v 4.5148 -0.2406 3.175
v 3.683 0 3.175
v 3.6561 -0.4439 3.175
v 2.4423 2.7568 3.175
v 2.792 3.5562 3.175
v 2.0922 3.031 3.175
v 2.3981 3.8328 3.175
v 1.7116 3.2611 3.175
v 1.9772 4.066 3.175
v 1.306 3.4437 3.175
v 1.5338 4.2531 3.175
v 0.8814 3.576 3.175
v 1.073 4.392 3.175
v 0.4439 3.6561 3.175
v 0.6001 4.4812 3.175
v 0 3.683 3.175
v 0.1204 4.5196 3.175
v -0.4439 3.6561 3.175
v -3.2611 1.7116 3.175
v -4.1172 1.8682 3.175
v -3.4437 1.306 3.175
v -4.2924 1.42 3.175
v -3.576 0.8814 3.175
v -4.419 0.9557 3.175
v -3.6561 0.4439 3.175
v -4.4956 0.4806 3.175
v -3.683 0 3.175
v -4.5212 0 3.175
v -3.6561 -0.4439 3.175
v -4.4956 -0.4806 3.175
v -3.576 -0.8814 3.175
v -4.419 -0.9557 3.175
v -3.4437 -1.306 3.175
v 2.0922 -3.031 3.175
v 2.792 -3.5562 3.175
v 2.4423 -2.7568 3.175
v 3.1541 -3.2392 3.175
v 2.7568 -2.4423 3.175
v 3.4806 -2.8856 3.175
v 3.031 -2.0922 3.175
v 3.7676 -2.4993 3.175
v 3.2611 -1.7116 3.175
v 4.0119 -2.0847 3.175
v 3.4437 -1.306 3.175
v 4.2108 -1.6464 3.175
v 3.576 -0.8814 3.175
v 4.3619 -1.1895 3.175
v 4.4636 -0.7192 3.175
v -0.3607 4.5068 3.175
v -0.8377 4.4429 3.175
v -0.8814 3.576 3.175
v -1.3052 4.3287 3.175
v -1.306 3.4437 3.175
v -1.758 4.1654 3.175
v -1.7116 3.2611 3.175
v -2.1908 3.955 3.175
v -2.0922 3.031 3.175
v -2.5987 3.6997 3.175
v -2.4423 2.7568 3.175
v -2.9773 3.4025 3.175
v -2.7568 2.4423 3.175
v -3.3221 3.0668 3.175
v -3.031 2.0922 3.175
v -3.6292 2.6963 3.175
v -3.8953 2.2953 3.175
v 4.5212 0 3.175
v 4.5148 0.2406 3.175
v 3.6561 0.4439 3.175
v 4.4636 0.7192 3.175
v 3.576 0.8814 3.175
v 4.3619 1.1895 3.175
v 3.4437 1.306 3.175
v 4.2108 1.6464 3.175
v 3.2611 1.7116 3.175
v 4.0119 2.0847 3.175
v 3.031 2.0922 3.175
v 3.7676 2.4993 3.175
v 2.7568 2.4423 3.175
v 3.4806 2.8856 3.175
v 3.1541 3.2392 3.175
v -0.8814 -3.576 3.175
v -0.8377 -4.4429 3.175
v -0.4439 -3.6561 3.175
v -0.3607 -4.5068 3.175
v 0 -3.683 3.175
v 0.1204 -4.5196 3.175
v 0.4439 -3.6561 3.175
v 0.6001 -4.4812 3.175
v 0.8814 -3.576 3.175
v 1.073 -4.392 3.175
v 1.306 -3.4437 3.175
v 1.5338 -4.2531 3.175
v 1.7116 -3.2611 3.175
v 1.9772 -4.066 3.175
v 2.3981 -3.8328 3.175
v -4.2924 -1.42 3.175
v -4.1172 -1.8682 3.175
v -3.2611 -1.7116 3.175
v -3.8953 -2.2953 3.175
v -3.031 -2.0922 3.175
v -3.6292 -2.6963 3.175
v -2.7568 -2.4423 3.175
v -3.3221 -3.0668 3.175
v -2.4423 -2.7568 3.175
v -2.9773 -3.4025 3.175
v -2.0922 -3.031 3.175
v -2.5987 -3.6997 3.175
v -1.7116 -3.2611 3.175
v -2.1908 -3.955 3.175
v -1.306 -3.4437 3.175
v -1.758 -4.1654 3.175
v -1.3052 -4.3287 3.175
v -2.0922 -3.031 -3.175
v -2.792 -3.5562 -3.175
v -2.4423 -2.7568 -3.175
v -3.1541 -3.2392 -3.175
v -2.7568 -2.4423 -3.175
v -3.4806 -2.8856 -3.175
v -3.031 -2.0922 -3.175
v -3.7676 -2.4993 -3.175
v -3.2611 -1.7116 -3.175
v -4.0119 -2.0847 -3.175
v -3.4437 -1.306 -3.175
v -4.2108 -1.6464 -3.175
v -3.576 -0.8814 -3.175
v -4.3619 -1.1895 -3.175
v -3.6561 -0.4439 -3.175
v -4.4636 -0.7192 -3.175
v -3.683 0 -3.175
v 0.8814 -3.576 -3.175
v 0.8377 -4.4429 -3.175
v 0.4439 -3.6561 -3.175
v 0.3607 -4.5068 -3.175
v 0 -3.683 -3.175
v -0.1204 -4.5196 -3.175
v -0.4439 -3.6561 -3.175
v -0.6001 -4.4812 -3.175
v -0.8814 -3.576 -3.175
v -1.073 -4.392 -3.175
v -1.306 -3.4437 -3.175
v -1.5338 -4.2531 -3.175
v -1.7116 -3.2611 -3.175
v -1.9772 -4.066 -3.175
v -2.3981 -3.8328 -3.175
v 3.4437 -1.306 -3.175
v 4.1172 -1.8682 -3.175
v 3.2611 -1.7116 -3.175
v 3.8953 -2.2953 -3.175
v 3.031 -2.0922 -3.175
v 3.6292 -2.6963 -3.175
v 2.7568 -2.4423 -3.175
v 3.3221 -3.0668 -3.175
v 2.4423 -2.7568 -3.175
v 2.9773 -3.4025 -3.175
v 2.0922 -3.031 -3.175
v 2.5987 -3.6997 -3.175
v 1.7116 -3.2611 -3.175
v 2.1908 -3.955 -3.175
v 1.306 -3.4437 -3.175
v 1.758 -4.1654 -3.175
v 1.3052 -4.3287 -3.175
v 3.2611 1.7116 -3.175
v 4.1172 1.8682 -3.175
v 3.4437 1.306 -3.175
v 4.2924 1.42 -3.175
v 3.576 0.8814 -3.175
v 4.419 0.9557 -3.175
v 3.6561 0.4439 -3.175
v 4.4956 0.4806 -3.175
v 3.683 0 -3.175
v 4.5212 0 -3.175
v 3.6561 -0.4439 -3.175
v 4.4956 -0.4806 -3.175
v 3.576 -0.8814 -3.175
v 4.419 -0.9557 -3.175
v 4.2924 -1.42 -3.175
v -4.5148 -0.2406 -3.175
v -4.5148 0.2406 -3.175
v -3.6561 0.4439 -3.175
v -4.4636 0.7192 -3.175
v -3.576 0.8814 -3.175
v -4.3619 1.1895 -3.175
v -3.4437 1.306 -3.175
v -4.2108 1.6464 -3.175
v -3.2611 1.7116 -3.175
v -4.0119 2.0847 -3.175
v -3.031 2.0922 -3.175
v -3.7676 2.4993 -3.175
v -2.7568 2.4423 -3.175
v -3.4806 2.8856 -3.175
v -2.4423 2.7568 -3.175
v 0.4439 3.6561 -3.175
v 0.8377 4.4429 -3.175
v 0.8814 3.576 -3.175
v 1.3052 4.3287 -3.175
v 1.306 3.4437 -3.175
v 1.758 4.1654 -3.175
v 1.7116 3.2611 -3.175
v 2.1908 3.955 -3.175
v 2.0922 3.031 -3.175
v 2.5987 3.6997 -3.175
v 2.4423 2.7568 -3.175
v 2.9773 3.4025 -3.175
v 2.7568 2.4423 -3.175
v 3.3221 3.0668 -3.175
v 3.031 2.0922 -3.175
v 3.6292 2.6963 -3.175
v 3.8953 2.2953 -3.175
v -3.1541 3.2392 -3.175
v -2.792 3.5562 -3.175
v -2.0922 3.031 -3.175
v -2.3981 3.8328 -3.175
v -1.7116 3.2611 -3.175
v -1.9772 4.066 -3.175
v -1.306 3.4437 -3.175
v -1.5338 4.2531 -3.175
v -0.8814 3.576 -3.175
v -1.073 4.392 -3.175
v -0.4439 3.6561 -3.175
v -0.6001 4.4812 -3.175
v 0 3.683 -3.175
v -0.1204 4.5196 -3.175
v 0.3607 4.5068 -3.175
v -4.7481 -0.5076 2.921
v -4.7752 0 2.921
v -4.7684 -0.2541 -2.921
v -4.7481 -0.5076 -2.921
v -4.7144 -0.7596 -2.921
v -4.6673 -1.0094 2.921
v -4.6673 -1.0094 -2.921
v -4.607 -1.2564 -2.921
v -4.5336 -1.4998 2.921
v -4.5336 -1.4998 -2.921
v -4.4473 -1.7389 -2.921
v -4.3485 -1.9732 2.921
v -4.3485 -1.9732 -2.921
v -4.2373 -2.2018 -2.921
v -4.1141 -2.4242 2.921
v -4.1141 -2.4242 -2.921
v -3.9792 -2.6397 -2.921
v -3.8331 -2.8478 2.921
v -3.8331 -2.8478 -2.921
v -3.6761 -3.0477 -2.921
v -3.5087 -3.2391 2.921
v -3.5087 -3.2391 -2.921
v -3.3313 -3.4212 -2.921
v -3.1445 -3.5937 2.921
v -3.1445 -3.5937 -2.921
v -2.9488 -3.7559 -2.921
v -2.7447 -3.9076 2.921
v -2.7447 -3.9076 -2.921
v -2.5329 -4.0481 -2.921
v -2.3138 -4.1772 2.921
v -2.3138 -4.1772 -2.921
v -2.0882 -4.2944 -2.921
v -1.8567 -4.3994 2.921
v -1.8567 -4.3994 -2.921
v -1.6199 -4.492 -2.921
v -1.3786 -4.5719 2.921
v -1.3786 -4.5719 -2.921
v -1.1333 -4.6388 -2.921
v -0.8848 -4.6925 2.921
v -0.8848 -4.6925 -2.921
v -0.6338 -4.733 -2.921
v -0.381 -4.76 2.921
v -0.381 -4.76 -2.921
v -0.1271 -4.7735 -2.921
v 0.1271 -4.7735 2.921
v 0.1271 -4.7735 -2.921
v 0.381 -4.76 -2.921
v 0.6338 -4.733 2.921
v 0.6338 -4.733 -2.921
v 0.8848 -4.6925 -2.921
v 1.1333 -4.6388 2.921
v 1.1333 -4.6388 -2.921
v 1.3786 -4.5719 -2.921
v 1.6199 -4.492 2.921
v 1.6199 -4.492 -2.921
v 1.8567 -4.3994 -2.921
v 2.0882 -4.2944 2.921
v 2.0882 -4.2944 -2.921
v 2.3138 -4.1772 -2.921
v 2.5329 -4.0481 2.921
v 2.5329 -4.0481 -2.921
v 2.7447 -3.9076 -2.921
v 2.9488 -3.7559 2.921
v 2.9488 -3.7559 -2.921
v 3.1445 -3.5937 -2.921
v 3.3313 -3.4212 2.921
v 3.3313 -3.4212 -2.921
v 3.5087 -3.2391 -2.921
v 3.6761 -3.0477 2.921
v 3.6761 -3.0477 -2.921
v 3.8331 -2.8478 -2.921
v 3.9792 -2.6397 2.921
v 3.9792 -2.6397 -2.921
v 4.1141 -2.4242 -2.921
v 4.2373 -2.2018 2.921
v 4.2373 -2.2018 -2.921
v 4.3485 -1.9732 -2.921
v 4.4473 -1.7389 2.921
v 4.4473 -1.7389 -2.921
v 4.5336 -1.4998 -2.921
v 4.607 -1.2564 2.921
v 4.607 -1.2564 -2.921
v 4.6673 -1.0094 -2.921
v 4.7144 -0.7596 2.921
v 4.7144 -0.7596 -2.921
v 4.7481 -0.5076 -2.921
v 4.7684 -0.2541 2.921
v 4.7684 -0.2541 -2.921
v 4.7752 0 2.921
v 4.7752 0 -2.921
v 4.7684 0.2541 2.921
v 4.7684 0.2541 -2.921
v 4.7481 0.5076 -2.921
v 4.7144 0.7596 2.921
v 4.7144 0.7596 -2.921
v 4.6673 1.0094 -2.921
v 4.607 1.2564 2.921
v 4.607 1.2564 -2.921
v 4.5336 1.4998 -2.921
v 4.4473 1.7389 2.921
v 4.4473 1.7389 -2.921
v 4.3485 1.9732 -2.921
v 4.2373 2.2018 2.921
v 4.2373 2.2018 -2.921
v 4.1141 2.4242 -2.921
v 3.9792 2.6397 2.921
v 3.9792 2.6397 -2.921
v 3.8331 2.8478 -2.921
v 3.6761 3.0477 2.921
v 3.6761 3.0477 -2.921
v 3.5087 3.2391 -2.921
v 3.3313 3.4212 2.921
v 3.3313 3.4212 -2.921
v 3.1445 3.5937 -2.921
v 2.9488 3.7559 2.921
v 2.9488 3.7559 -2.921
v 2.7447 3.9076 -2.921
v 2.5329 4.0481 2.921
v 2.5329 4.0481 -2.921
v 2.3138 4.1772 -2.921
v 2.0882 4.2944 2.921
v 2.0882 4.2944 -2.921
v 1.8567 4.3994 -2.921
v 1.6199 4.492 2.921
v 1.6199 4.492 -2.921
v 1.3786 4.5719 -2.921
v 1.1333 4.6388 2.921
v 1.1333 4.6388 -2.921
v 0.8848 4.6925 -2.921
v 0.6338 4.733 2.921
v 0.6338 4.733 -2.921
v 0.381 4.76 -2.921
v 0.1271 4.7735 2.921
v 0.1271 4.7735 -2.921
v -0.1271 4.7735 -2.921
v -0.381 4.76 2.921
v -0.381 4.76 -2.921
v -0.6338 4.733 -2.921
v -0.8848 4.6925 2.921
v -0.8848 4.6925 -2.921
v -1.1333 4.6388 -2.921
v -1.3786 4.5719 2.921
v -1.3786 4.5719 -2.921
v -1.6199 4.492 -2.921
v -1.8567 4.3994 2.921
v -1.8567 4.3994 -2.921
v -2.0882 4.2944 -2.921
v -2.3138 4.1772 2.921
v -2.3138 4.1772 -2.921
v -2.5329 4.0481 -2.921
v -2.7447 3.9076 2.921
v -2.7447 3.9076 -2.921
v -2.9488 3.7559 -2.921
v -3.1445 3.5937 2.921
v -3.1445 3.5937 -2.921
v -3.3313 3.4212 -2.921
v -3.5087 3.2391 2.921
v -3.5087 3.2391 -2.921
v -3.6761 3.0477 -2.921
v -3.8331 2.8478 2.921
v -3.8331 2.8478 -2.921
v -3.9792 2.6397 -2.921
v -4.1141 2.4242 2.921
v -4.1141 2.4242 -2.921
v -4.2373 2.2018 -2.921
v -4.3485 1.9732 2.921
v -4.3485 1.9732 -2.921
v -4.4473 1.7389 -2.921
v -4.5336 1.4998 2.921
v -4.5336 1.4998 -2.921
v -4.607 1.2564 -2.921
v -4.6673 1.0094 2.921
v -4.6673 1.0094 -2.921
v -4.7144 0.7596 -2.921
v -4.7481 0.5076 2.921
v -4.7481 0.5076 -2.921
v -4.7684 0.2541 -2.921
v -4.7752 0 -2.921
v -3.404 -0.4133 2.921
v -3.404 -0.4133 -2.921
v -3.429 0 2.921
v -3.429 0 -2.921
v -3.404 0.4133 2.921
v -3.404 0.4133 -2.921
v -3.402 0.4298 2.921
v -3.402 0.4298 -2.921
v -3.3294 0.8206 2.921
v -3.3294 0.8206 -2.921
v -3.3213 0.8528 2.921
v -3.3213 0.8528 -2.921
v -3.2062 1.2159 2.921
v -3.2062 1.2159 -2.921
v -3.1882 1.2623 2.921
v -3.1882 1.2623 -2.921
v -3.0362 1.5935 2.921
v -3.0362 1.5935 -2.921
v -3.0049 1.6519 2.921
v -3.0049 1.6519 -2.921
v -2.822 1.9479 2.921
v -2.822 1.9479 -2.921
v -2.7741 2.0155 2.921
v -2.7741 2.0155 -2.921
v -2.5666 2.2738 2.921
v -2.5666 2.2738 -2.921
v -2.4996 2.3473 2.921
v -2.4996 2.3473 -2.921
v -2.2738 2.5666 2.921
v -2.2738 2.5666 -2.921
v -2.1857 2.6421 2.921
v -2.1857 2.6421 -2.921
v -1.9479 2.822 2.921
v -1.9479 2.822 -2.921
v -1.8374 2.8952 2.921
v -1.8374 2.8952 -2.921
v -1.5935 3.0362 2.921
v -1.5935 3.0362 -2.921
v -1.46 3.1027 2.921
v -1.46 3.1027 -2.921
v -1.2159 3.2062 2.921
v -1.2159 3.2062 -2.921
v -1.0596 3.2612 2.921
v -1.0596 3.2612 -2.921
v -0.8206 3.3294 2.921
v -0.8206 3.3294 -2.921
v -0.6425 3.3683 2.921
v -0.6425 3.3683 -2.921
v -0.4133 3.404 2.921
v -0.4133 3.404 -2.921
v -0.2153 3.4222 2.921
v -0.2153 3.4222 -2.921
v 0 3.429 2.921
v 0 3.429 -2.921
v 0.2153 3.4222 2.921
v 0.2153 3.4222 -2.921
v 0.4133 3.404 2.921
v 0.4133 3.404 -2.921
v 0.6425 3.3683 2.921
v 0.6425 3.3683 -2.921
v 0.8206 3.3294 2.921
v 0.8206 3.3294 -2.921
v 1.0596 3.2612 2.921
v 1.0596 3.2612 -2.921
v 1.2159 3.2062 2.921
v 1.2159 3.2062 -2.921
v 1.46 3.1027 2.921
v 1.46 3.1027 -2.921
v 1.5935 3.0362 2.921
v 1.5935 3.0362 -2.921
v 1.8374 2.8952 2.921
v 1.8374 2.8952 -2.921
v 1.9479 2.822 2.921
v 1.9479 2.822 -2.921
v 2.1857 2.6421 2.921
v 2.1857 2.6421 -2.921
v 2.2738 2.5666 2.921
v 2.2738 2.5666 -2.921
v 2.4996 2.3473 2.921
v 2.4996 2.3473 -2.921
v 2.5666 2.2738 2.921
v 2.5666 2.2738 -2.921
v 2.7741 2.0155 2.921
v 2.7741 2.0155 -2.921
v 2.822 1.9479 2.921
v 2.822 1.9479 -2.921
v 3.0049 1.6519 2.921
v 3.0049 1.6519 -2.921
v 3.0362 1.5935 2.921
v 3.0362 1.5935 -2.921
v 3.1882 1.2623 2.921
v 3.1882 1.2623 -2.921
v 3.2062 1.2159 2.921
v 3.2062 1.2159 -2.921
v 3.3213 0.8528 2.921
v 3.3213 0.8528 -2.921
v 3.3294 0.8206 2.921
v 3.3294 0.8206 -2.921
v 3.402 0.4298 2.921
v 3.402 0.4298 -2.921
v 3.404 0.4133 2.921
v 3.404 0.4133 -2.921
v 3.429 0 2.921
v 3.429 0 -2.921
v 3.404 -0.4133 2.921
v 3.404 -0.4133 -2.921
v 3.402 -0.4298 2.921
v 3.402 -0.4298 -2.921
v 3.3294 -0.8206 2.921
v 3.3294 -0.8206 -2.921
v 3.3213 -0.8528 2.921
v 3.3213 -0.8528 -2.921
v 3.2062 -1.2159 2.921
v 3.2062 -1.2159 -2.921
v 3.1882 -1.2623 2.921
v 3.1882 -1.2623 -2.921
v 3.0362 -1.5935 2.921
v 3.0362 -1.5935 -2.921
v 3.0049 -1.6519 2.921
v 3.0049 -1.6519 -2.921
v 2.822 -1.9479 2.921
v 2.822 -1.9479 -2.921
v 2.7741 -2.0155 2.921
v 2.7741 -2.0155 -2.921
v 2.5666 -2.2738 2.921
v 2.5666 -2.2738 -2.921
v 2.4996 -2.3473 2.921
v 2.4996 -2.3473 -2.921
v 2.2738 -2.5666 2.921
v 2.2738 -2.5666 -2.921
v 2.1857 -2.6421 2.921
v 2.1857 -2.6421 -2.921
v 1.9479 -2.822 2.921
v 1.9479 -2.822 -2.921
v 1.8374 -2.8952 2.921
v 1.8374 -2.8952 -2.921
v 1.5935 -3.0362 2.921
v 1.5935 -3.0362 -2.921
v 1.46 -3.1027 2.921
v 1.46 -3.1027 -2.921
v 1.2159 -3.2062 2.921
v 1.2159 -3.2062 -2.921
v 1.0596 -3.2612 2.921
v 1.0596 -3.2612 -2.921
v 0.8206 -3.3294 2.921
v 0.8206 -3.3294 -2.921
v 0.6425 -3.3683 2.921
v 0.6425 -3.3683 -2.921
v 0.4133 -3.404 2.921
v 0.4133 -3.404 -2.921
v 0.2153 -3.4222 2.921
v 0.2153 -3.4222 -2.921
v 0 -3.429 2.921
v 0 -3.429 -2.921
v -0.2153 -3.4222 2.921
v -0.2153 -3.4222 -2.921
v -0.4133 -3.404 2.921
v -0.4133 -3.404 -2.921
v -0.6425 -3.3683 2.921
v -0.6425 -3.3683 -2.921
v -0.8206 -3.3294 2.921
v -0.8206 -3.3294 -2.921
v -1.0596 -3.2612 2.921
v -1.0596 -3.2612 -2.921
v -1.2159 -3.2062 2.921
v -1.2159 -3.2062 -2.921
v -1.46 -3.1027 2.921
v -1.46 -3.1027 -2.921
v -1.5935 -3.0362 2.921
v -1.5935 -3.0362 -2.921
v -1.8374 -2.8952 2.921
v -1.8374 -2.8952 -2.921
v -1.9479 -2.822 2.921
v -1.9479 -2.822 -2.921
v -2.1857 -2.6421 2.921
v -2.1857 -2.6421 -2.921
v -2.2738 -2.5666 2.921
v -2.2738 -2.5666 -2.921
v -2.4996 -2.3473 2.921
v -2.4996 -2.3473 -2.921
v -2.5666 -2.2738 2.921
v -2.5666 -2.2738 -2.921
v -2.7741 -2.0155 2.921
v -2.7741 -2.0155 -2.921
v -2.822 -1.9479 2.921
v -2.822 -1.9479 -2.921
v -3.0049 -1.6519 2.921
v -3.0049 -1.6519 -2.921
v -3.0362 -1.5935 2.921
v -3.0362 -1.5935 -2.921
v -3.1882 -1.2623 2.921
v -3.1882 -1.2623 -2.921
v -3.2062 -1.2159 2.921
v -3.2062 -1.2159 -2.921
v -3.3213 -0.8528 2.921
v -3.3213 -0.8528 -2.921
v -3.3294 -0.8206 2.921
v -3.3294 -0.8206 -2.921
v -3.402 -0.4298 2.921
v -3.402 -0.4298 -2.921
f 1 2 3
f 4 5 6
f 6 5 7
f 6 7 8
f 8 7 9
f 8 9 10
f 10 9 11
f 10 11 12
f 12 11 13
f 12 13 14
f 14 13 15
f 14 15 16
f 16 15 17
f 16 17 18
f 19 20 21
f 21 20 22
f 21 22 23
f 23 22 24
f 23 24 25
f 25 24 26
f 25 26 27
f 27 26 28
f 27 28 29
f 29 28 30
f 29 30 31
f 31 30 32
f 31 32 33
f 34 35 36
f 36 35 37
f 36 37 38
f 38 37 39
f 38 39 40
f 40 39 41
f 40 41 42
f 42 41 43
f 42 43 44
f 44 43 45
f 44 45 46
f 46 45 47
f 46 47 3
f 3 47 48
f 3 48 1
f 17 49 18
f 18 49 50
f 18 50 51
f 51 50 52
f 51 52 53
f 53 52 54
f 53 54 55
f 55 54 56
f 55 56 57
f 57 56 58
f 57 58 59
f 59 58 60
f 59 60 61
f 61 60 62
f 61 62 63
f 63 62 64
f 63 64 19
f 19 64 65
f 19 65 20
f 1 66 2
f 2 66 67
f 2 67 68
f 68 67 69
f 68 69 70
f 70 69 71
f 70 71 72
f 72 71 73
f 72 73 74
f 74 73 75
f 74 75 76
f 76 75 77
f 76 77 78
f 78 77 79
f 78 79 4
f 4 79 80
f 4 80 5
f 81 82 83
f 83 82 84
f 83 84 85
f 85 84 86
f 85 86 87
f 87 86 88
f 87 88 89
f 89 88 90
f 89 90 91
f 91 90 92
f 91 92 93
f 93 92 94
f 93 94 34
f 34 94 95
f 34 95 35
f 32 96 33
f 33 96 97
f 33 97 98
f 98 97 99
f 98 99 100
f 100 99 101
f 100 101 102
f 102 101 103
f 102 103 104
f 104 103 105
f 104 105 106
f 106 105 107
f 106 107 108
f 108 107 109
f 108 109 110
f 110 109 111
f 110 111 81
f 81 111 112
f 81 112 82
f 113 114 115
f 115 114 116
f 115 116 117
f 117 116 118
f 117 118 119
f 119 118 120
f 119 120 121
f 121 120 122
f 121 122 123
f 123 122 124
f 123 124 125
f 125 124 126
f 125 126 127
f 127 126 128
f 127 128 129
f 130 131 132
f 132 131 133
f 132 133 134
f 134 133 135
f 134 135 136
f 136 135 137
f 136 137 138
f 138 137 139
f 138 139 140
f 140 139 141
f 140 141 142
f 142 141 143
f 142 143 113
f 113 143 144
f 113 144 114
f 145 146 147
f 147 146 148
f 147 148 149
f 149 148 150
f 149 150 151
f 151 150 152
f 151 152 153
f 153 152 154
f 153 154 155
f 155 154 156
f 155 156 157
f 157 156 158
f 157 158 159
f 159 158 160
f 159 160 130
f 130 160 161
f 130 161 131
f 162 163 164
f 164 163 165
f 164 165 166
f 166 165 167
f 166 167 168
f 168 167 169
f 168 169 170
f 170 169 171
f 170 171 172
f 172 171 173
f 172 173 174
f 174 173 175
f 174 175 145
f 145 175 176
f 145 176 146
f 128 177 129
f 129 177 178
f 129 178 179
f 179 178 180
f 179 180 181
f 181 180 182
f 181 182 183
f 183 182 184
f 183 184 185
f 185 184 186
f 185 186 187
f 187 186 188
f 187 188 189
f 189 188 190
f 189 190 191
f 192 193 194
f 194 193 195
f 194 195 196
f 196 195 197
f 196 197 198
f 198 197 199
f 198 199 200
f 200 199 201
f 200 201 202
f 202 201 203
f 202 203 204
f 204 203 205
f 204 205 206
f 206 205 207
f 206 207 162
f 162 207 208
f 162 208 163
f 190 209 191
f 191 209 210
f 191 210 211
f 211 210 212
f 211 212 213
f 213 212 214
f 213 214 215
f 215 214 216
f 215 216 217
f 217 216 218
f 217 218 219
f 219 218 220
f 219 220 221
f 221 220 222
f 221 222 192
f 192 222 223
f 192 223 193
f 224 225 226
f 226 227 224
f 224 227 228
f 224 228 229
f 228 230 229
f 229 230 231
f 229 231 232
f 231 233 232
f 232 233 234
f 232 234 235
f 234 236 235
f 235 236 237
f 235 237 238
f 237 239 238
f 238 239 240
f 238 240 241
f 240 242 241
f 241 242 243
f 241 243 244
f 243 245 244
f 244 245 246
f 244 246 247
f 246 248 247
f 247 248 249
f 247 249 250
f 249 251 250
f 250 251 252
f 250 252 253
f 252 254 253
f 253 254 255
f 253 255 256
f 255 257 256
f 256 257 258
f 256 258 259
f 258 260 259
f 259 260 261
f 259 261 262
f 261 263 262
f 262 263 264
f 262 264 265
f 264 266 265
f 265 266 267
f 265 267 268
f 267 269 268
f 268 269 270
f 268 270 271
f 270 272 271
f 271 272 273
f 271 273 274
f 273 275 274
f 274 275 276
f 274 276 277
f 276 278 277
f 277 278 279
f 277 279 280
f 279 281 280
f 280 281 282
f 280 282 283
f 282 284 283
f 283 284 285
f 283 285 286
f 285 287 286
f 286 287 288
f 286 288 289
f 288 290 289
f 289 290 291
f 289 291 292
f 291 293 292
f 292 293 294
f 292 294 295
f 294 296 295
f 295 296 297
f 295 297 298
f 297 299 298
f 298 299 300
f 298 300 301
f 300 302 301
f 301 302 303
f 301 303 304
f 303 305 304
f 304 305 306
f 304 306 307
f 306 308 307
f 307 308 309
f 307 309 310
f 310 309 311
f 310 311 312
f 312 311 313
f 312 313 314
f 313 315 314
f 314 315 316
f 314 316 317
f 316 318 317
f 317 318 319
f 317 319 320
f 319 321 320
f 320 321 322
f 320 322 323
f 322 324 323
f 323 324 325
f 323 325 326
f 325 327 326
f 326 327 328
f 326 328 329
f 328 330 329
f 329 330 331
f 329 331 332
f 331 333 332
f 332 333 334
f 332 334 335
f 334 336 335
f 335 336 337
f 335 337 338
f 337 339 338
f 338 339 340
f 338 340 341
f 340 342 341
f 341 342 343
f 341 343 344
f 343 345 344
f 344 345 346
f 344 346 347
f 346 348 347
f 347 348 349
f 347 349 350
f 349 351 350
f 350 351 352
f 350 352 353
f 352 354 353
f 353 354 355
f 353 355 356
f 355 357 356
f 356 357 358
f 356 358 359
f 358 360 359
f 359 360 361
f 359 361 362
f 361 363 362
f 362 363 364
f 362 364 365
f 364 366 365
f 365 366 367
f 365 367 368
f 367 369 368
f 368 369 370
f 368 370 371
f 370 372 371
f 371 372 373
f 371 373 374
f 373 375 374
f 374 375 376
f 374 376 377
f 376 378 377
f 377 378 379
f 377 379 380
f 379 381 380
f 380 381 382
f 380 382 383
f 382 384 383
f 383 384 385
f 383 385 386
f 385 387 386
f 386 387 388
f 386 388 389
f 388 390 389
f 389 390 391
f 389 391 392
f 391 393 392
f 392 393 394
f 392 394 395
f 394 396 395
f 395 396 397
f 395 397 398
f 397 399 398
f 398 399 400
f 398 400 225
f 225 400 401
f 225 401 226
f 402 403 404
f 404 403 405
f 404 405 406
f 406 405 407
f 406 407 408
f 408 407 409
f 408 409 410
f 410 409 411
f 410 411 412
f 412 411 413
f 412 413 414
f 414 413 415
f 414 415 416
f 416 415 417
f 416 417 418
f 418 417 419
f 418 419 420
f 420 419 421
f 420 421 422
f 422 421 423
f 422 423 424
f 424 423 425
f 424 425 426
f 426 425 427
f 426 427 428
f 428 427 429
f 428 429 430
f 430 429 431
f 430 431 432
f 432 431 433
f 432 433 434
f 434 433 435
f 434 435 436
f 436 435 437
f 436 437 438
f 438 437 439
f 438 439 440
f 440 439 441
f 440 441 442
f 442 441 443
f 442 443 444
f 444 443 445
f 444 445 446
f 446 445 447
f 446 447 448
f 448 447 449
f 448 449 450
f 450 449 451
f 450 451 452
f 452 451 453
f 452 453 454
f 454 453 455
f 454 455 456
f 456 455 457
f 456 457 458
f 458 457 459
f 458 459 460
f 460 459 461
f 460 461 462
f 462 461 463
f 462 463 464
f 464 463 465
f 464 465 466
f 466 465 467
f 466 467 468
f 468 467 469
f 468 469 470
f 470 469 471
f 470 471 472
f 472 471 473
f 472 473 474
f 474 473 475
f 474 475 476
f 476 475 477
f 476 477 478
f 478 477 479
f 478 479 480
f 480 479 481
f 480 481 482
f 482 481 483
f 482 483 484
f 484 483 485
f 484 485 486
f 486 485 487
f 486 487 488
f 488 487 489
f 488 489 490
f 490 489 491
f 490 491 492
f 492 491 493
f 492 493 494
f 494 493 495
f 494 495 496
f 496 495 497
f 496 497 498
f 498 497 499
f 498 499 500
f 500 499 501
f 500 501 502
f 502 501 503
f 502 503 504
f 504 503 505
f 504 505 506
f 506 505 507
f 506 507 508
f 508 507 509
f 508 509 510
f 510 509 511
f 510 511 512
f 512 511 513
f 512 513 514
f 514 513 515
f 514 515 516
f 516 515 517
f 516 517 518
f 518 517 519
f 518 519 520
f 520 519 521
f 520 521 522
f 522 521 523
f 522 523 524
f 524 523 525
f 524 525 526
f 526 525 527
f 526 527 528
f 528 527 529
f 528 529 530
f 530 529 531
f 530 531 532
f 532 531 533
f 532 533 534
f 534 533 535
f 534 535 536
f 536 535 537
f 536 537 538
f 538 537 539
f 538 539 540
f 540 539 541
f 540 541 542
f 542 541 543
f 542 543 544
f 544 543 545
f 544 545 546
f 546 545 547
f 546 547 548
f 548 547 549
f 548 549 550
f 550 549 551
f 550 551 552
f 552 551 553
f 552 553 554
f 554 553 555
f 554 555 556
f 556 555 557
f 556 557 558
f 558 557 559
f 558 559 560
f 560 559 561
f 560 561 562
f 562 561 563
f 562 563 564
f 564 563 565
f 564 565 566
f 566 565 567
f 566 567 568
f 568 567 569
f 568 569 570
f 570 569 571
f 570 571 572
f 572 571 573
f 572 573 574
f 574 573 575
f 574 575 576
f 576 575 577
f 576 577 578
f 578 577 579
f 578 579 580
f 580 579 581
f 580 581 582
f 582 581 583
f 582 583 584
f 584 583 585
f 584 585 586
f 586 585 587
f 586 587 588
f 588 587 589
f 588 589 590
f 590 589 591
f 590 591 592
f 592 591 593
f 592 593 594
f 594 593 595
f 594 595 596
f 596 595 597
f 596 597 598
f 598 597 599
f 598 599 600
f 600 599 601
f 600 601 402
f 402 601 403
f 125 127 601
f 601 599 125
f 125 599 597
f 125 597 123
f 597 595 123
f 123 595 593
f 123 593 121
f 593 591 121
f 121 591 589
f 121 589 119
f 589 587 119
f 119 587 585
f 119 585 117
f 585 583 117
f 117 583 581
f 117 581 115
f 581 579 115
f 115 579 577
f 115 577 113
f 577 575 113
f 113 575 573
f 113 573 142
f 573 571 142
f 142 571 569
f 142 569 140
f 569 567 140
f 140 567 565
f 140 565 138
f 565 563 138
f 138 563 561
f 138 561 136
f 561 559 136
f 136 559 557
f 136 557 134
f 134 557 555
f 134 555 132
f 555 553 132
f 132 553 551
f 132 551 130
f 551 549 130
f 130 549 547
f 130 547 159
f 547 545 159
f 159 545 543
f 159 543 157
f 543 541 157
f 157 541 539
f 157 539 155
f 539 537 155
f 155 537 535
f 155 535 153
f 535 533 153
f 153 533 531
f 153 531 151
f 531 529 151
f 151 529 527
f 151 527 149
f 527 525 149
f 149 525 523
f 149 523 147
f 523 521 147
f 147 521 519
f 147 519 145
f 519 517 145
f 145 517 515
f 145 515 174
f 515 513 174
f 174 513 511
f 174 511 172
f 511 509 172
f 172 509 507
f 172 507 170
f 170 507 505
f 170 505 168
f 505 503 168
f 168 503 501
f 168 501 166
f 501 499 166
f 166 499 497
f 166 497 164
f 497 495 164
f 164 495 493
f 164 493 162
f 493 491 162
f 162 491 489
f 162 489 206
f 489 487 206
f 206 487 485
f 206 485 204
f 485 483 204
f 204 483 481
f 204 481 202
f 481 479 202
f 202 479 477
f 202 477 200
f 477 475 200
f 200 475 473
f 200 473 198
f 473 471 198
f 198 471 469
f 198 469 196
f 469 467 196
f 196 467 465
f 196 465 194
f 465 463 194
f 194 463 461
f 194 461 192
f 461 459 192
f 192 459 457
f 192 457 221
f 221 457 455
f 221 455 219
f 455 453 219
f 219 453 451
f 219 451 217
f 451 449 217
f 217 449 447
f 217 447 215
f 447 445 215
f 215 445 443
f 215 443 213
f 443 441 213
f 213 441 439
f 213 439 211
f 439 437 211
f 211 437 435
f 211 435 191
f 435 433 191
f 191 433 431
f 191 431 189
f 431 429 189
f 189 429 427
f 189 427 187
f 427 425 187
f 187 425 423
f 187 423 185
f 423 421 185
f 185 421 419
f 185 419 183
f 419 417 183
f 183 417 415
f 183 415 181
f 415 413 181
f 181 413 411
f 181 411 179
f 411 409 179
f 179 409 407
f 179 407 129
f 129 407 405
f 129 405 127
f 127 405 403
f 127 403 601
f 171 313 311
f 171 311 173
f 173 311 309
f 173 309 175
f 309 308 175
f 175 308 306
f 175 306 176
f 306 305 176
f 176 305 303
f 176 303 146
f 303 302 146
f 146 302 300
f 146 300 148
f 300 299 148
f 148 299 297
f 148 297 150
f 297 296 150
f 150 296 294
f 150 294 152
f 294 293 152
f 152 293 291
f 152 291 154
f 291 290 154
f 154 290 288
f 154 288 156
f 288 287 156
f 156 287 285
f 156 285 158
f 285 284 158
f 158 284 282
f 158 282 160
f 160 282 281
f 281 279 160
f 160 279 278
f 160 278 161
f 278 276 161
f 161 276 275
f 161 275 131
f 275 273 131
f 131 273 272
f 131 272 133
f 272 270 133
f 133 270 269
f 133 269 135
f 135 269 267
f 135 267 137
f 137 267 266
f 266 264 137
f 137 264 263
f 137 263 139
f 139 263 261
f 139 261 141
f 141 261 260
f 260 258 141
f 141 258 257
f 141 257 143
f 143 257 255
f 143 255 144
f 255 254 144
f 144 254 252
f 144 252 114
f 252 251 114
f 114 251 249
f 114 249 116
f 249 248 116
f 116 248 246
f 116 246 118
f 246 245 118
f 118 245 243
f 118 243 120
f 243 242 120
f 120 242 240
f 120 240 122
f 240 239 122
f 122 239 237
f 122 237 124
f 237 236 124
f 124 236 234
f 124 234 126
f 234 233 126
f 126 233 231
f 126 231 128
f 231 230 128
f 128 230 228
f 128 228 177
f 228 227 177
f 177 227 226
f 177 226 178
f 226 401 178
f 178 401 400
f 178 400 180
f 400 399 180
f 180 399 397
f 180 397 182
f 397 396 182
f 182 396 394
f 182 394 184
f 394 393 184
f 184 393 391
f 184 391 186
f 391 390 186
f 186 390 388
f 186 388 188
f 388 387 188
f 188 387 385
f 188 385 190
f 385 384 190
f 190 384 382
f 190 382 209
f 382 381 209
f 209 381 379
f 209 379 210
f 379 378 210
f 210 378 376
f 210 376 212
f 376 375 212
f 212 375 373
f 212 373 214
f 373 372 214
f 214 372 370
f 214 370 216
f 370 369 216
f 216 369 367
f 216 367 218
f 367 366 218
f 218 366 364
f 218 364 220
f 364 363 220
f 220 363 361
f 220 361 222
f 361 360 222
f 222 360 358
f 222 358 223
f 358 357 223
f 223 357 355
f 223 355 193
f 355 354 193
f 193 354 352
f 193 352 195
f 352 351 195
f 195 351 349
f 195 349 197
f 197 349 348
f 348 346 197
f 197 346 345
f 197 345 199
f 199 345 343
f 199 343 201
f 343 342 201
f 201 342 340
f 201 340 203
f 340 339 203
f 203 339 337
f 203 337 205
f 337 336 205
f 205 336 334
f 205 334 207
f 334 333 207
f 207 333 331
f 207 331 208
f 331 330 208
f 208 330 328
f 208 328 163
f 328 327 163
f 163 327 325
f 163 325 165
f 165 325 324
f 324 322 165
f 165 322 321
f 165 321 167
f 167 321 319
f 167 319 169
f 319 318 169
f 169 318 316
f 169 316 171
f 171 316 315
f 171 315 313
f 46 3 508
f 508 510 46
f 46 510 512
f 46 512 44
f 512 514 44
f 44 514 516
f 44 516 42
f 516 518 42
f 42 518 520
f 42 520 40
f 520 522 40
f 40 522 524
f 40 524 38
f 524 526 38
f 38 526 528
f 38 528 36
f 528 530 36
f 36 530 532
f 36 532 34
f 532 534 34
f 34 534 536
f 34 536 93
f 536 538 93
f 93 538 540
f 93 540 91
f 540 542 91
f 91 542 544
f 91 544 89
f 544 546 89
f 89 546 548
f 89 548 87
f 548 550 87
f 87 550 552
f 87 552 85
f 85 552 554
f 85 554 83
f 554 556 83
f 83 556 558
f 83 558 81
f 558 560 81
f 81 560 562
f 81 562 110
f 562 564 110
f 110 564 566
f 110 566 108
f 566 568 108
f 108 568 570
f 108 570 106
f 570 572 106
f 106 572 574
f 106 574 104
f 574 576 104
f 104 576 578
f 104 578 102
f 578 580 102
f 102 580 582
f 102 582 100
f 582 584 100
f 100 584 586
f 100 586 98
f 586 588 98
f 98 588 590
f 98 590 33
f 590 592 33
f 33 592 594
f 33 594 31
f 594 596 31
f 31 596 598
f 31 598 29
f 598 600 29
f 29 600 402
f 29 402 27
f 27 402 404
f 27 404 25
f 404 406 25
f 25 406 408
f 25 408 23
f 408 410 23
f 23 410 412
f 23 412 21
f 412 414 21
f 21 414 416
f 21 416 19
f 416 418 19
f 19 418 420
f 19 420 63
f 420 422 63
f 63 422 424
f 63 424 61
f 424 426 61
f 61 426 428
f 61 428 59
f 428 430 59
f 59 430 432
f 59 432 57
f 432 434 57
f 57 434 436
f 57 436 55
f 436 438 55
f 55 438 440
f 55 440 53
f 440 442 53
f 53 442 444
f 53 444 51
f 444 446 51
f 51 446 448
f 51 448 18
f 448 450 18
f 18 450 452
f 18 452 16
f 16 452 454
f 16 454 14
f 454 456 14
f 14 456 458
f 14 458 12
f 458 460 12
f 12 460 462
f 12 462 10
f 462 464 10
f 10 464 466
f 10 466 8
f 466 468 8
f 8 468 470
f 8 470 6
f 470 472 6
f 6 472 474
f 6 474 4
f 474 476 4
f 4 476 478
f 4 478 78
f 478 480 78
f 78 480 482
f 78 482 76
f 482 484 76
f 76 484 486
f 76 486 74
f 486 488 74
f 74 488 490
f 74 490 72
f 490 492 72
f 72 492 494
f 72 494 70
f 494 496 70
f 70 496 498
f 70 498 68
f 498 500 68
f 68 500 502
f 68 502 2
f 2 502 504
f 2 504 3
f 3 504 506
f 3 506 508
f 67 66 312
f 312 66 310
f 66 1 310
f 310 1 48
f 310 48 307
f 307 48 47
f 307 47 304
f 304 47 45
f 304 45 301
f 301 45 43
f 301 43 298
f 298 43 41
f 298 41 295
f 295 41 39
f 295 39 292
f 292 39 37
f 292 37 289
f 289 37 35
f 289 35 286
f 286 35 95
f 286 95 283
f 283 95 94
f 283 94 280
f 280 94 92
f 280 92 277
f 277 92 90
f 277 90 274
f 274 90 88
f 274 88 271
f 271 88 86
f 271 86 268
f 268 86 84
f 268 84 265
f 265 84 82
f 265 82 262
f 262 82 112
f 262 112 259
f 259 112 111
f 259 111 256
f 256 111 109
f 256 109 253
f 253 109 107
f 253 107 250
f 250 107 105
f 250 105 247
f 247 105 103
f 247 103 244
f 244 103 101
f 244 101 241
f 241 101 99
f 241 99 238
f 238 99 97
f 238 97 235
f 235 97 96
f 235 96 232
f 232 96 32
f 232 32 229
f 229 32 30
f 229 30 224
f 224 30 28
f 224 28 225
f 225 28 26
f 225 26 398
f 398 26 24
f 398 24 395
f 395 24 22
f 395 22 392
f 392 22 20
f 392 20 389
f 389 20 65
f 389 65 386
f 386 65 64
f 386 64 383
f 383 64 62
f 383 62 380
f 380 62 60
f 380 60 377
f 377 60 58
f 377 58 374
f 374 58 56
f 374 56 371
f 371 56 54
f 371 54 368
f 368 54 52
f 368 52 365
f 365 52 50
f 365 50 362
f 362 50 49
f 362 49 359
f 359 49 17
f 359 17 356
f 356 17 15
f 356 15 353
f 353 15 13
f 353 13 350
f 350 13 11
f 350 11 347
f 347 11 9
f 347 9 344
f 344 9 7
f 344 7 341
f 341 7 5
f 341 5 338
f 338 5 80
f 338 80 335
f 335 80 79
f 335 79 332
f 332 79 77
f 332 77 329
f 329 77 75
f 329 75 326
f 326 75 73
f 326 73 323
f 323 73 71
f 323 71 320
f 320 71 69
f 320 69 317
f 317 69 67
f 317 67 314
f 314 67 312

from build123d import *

# Parameters (mm, degrees)
SKETCH1_R      = 4.7752
SKETCH1_R_2    = 3.429
EXTRUDE1_DEPTH = 3.175
CHAMFER1_SIZE  = 0.254


with BuildPart() as part:
    # Sketch1 → Extrude1 (new body, symmetric)
    with BuildSketch(Plane.XY):
        Circle(SKETCH1_R)
        Circle(SKETCH1_R_2, mode=Mode.SUBTRACT)
    extrude(amount=EXTRUDE1_DEPTH, both=True)

    # Chamfer1
    chamfer1_edges = [part.edges().sort_by_distance(p)[0] for p in [
        (-4.7752, 0, -3.175),
        (-4.7752, 0, 3.175),
        (-3.429, 0, -3.175),
        (-3.429, 0, 3.175),
    ]]
    chamfer(chamfer1_edges, length=CHAMFER1_SIZE)


solid = part.part
